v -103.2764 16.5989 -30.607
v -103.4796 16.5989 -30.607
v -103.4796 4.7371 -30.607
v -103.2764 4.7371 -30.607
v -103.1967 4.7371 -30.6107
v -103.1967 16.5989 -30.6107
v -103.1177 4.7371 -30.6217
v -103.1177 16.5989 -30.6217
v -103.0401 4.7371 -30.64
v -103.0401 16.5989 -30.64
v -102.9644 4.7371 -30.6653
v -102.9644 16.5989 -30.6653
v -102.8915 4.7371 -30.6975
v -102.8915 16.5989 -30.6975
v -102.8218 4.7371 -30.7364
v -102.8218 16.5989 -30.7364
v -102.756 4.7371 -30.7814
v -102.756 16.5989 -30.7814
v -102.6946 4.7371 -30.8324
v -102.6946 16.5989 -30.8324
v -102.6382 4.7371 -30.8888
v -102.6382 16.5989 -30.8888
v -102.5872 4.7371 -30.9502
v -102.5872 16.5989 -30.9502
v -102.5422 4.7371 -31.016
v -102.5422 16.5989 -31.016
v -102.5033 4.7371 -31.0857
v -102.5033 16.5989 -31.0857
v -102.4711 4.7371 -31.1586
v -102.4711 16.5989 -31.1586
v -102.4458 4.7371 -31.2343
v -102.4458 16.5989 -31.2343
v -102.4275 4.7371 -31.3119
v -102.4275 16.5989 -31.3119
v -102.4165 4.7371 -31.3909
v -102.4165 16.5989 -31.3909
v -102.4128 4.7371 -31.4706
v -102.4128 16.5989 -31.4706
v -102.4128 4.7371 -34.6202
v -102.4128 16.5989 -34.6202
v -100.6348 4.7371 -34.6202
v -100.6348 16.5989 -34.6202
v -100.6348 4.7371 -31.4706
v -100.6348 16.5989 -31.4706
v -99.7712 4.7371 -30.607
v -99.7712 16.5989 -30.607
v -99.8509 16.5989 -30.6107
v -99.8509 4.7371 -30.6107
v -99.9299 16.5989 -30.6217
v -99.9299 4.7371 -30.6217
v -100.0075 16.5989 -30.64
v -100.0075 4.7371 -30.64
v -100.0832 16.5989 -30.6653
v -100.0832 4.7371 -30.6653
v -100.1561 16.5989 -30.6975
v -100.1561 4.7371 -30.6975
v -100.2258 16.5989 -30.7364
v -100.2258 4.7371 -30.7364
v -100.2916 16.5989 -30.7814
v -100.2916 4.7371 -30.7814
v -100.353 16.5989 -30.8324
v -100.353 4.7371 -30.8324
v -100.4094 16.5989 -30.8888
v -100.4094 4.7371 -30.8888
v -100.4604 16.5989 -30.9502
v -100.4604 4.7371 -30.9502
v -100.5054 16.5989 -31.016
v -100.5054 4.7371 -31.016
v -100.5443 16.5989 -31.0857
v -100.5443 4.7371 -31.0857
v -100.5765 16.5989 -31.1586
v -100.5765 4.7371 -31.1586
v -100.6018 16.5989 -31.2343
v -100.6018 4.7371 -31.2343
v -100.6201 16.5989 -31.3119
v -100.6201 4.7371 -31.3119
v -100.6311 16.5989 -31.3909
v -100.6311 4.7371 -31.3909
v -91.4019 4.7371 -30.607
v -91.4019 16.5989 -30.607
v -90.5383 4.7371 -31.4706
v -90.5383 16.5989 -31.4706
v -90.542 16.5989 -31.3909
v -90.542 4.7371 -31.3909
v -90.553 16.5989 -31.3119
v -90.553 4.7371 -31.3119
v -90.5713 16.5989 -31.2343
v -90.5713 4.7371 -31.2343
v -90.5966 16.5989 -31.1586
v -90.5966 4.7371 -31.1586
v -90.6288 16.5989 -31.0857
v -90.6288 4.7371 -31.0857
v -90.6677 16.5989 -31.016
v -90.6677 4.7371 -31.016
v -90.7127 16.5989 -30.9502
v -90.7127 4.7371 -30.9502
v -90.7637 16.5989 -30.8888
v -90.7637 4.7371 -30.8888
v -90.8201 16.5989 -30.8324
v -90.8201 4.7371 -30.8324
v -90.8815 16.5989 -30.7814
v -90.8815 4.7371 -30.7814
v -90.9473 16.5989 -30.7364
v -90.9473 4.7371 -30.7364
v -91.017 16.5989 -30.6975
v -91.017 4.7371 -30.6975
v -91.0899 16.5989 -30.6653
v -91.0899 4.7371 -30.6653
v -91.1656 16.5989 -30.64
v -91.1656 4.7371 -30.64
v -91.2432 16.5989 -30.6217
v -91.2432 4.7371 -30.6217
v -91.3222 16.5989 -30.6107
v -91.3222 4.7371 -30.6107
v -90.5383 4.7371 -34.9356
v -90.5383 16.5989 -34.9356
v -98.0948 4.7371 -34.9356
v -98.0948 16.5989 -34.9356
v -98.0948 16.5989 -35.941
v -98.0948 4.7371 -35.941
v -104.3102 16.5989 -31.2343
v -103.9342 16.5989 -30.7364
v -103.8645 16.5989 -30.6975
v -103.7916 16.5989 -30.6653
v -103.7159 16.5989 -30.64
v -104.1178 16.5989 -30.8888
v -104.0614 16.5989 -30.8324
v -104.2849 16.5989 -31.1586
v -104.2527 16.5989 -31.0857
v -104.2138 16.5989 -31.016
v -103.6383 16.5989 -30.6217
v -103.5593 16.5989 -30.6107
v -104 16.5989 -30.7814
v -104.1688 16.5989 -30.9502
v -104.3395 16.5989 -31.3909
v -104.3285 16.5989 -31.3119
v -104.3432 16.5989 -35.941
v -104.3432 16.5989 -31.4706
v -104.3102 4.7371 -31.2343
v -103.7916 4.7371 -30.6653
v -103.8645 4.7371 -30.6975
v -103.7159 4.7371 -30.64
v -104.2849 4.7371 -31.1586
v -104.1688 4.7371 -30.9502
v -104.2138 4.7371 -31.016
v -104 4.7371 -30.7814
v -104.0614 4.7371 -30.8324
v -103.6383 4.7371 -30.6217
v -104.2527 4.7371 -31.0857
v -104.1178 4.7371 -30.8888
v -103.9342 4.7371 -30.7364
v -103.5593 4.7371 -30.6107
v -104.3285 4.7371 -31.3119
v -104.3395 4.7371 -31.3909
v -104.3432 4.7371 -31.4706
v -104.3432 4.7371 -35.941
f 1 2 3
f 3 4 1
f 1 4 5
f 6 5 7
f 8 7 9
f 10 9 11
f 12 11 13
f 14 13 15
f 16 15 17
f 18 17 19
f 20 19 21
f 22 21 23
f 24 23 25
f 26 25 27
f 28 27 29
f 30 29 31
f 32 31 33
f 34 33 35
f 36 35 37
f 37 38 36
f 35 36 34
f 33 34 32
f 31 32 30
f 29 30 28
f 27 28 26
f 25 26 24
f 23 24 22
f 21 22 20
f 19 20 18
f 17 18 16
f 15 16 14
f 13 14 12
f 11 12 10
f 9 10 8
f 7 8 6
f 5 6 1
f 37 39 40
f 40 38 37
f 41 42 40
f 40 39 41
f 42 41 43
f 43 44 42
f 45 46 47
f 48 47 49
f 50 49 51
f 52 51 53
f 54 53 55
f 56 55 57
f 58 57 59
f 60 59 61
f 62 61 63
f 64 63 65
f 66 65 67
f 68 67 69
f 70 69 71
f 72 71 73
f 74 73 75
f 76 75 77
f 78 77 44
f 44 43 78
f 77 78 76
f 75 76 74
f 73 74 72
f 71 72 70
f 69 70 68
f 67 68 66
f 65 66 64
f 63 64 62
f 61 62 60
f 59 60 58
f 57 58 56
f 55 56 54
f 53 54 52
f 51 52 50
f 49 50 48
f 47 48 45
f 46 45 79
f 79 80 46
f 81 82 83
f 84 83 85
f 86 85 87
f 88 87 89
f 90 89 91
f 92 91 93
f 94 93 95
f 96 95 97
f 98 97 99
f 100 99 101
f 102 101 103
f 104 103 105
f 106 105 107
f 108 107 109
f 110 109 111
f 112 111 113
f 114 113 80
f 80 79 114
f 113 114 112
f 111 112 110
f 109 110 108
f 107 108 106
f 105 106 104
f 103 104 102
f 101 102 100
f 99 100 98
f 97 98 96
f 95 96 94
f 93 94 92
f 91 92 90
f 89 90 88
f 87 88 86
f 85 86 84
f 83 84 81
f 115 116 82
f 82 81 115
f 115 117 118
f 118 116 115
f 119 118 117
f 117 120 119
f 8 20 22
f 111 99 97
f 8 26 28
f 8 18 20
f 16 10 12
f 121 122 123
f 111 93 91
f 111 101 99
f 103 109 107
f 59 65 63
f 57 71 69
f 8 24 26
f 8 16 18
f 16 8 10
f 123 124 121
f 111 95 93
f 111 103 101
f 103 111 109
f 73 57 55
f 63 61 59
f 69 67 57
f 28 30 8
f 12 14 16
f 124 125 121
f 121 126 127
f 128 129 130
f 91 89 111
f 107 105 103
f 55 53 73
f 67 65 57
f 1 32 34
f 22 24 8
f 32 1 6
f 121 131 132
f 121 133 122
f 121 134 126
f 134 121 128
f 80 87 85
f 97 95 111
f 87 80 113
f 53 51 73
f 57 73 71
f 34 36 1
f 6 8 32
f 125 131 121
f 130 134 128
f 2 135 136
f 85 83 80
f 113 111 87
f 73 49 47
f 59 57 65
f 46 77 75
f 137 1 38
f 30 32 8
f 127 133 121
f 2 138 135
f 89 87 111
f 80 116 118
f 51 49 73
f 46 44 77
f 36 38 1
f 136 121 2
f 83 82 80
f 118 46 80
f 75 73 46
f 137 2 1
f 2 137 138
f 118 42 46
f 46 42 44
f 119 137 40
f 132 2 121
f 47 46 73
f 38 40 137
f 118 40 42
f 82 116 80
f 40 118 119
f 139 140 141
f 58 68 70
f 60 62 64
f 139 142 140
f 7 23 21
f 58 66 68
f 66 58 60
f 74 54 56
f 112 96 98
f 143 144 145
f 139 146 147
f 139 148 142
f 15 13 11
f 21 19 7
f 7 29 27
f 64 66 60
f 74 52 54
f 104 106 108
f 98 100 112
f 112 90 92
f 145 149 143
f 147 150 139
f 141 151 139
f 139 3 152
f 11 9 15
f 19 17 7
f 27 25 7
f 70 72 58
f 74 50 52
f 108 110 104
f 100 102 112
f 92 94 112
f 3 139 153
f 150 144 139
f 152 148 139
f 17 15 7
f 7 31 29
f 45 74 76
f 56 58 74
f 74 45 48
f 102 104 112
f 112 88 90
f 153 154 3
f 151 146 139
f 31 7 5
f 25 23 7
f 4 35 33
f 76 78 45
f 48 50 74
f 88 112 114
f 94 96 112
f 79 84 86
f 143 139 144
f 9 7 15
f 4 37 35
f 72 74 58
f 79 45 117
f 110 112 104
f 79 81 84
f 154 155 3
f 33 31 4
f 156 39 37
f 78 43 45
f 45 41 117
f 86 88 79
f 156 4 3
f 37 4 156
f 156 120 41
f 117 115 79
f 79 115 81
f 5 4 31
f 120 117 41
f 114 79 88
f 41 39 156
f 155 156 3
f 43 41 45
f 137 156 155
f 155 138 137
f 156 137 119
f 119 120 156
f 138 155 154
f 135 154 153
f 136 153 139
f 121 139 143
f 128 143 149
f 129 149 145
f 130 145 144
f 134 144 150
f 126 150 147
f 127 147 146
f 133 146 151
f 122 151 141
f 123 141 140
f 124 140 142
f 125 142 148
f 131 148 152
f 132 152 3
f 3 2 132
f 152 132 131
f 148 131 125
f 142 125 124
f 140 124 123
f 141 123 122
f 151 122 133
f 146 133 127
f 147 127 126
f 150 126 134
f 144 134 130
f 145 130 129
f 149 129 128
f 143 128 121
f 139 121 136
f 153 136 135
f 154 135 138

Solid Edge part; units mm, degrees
sketch "Sketch1" plane through (-100.203, 10.668, -35.941) normal (0, 0, 1) x (-1, 0, 0)
  line L0 (4.1402, -5.9309) -> (4.1402, 5.9309)
  line L1 (4.1402, 5.9309) -> (-9.6647, 5.9309)
  line L2 (-9.6647, 5.9309) -> (-9.6647, -5.9309)
  line L3 (-9.6647, -5.9309) -> (4.1402, -5.9309)
extrude "Protrusion1" add sketch "Sketch1" along normal blind 5.334
sketch "Sketch2" plane through (-97.4407, 16.5989, -33.274) normal (0, 1, 0) x (-1, 0, 0)
  line L0 (4.9721, 2.9711) -> (3.1941, 2.9711)
  line L1 (3.1941, 2.9711) -> (3.1941, -1.3462)
  line L2 (3.1941, -1.3462) -> (4.9721, -1.3462)
  line L3 (4.9721, -1.3462) -> (4.9721, 2.9711)
extrude "Cutout1" cut sketch "Sketch2" against normal through all
sketch "Sketch3" plane through (-97.4407, 16.5989, -33.274) normal (0, 1, 0) x (-1, 0, 0)
  line L0 (0.6541, -1.6616) -> (-6.9024, -1.6616)
  line L1 (-6.9024, -1.6616) -> (-6.9024, -2.667)
  line L2 (-6.9024, -2.667) -> (0.6541, -2.667)
  line L3 (0.6541, -2.667) -> (0.6541, -1.6616)
extrude "Cutout2" cut sketch "Sketch3" against normal through all
fillet "Round_1" radius 0.8636 4 edges at (-104.3432, 10.668, -30.607) (-102.4128, 10.668, -30.607) (-100.6348, 10.668, -30.607) (-90.5383, 10.668, -30.607)
properties material "Gold"
